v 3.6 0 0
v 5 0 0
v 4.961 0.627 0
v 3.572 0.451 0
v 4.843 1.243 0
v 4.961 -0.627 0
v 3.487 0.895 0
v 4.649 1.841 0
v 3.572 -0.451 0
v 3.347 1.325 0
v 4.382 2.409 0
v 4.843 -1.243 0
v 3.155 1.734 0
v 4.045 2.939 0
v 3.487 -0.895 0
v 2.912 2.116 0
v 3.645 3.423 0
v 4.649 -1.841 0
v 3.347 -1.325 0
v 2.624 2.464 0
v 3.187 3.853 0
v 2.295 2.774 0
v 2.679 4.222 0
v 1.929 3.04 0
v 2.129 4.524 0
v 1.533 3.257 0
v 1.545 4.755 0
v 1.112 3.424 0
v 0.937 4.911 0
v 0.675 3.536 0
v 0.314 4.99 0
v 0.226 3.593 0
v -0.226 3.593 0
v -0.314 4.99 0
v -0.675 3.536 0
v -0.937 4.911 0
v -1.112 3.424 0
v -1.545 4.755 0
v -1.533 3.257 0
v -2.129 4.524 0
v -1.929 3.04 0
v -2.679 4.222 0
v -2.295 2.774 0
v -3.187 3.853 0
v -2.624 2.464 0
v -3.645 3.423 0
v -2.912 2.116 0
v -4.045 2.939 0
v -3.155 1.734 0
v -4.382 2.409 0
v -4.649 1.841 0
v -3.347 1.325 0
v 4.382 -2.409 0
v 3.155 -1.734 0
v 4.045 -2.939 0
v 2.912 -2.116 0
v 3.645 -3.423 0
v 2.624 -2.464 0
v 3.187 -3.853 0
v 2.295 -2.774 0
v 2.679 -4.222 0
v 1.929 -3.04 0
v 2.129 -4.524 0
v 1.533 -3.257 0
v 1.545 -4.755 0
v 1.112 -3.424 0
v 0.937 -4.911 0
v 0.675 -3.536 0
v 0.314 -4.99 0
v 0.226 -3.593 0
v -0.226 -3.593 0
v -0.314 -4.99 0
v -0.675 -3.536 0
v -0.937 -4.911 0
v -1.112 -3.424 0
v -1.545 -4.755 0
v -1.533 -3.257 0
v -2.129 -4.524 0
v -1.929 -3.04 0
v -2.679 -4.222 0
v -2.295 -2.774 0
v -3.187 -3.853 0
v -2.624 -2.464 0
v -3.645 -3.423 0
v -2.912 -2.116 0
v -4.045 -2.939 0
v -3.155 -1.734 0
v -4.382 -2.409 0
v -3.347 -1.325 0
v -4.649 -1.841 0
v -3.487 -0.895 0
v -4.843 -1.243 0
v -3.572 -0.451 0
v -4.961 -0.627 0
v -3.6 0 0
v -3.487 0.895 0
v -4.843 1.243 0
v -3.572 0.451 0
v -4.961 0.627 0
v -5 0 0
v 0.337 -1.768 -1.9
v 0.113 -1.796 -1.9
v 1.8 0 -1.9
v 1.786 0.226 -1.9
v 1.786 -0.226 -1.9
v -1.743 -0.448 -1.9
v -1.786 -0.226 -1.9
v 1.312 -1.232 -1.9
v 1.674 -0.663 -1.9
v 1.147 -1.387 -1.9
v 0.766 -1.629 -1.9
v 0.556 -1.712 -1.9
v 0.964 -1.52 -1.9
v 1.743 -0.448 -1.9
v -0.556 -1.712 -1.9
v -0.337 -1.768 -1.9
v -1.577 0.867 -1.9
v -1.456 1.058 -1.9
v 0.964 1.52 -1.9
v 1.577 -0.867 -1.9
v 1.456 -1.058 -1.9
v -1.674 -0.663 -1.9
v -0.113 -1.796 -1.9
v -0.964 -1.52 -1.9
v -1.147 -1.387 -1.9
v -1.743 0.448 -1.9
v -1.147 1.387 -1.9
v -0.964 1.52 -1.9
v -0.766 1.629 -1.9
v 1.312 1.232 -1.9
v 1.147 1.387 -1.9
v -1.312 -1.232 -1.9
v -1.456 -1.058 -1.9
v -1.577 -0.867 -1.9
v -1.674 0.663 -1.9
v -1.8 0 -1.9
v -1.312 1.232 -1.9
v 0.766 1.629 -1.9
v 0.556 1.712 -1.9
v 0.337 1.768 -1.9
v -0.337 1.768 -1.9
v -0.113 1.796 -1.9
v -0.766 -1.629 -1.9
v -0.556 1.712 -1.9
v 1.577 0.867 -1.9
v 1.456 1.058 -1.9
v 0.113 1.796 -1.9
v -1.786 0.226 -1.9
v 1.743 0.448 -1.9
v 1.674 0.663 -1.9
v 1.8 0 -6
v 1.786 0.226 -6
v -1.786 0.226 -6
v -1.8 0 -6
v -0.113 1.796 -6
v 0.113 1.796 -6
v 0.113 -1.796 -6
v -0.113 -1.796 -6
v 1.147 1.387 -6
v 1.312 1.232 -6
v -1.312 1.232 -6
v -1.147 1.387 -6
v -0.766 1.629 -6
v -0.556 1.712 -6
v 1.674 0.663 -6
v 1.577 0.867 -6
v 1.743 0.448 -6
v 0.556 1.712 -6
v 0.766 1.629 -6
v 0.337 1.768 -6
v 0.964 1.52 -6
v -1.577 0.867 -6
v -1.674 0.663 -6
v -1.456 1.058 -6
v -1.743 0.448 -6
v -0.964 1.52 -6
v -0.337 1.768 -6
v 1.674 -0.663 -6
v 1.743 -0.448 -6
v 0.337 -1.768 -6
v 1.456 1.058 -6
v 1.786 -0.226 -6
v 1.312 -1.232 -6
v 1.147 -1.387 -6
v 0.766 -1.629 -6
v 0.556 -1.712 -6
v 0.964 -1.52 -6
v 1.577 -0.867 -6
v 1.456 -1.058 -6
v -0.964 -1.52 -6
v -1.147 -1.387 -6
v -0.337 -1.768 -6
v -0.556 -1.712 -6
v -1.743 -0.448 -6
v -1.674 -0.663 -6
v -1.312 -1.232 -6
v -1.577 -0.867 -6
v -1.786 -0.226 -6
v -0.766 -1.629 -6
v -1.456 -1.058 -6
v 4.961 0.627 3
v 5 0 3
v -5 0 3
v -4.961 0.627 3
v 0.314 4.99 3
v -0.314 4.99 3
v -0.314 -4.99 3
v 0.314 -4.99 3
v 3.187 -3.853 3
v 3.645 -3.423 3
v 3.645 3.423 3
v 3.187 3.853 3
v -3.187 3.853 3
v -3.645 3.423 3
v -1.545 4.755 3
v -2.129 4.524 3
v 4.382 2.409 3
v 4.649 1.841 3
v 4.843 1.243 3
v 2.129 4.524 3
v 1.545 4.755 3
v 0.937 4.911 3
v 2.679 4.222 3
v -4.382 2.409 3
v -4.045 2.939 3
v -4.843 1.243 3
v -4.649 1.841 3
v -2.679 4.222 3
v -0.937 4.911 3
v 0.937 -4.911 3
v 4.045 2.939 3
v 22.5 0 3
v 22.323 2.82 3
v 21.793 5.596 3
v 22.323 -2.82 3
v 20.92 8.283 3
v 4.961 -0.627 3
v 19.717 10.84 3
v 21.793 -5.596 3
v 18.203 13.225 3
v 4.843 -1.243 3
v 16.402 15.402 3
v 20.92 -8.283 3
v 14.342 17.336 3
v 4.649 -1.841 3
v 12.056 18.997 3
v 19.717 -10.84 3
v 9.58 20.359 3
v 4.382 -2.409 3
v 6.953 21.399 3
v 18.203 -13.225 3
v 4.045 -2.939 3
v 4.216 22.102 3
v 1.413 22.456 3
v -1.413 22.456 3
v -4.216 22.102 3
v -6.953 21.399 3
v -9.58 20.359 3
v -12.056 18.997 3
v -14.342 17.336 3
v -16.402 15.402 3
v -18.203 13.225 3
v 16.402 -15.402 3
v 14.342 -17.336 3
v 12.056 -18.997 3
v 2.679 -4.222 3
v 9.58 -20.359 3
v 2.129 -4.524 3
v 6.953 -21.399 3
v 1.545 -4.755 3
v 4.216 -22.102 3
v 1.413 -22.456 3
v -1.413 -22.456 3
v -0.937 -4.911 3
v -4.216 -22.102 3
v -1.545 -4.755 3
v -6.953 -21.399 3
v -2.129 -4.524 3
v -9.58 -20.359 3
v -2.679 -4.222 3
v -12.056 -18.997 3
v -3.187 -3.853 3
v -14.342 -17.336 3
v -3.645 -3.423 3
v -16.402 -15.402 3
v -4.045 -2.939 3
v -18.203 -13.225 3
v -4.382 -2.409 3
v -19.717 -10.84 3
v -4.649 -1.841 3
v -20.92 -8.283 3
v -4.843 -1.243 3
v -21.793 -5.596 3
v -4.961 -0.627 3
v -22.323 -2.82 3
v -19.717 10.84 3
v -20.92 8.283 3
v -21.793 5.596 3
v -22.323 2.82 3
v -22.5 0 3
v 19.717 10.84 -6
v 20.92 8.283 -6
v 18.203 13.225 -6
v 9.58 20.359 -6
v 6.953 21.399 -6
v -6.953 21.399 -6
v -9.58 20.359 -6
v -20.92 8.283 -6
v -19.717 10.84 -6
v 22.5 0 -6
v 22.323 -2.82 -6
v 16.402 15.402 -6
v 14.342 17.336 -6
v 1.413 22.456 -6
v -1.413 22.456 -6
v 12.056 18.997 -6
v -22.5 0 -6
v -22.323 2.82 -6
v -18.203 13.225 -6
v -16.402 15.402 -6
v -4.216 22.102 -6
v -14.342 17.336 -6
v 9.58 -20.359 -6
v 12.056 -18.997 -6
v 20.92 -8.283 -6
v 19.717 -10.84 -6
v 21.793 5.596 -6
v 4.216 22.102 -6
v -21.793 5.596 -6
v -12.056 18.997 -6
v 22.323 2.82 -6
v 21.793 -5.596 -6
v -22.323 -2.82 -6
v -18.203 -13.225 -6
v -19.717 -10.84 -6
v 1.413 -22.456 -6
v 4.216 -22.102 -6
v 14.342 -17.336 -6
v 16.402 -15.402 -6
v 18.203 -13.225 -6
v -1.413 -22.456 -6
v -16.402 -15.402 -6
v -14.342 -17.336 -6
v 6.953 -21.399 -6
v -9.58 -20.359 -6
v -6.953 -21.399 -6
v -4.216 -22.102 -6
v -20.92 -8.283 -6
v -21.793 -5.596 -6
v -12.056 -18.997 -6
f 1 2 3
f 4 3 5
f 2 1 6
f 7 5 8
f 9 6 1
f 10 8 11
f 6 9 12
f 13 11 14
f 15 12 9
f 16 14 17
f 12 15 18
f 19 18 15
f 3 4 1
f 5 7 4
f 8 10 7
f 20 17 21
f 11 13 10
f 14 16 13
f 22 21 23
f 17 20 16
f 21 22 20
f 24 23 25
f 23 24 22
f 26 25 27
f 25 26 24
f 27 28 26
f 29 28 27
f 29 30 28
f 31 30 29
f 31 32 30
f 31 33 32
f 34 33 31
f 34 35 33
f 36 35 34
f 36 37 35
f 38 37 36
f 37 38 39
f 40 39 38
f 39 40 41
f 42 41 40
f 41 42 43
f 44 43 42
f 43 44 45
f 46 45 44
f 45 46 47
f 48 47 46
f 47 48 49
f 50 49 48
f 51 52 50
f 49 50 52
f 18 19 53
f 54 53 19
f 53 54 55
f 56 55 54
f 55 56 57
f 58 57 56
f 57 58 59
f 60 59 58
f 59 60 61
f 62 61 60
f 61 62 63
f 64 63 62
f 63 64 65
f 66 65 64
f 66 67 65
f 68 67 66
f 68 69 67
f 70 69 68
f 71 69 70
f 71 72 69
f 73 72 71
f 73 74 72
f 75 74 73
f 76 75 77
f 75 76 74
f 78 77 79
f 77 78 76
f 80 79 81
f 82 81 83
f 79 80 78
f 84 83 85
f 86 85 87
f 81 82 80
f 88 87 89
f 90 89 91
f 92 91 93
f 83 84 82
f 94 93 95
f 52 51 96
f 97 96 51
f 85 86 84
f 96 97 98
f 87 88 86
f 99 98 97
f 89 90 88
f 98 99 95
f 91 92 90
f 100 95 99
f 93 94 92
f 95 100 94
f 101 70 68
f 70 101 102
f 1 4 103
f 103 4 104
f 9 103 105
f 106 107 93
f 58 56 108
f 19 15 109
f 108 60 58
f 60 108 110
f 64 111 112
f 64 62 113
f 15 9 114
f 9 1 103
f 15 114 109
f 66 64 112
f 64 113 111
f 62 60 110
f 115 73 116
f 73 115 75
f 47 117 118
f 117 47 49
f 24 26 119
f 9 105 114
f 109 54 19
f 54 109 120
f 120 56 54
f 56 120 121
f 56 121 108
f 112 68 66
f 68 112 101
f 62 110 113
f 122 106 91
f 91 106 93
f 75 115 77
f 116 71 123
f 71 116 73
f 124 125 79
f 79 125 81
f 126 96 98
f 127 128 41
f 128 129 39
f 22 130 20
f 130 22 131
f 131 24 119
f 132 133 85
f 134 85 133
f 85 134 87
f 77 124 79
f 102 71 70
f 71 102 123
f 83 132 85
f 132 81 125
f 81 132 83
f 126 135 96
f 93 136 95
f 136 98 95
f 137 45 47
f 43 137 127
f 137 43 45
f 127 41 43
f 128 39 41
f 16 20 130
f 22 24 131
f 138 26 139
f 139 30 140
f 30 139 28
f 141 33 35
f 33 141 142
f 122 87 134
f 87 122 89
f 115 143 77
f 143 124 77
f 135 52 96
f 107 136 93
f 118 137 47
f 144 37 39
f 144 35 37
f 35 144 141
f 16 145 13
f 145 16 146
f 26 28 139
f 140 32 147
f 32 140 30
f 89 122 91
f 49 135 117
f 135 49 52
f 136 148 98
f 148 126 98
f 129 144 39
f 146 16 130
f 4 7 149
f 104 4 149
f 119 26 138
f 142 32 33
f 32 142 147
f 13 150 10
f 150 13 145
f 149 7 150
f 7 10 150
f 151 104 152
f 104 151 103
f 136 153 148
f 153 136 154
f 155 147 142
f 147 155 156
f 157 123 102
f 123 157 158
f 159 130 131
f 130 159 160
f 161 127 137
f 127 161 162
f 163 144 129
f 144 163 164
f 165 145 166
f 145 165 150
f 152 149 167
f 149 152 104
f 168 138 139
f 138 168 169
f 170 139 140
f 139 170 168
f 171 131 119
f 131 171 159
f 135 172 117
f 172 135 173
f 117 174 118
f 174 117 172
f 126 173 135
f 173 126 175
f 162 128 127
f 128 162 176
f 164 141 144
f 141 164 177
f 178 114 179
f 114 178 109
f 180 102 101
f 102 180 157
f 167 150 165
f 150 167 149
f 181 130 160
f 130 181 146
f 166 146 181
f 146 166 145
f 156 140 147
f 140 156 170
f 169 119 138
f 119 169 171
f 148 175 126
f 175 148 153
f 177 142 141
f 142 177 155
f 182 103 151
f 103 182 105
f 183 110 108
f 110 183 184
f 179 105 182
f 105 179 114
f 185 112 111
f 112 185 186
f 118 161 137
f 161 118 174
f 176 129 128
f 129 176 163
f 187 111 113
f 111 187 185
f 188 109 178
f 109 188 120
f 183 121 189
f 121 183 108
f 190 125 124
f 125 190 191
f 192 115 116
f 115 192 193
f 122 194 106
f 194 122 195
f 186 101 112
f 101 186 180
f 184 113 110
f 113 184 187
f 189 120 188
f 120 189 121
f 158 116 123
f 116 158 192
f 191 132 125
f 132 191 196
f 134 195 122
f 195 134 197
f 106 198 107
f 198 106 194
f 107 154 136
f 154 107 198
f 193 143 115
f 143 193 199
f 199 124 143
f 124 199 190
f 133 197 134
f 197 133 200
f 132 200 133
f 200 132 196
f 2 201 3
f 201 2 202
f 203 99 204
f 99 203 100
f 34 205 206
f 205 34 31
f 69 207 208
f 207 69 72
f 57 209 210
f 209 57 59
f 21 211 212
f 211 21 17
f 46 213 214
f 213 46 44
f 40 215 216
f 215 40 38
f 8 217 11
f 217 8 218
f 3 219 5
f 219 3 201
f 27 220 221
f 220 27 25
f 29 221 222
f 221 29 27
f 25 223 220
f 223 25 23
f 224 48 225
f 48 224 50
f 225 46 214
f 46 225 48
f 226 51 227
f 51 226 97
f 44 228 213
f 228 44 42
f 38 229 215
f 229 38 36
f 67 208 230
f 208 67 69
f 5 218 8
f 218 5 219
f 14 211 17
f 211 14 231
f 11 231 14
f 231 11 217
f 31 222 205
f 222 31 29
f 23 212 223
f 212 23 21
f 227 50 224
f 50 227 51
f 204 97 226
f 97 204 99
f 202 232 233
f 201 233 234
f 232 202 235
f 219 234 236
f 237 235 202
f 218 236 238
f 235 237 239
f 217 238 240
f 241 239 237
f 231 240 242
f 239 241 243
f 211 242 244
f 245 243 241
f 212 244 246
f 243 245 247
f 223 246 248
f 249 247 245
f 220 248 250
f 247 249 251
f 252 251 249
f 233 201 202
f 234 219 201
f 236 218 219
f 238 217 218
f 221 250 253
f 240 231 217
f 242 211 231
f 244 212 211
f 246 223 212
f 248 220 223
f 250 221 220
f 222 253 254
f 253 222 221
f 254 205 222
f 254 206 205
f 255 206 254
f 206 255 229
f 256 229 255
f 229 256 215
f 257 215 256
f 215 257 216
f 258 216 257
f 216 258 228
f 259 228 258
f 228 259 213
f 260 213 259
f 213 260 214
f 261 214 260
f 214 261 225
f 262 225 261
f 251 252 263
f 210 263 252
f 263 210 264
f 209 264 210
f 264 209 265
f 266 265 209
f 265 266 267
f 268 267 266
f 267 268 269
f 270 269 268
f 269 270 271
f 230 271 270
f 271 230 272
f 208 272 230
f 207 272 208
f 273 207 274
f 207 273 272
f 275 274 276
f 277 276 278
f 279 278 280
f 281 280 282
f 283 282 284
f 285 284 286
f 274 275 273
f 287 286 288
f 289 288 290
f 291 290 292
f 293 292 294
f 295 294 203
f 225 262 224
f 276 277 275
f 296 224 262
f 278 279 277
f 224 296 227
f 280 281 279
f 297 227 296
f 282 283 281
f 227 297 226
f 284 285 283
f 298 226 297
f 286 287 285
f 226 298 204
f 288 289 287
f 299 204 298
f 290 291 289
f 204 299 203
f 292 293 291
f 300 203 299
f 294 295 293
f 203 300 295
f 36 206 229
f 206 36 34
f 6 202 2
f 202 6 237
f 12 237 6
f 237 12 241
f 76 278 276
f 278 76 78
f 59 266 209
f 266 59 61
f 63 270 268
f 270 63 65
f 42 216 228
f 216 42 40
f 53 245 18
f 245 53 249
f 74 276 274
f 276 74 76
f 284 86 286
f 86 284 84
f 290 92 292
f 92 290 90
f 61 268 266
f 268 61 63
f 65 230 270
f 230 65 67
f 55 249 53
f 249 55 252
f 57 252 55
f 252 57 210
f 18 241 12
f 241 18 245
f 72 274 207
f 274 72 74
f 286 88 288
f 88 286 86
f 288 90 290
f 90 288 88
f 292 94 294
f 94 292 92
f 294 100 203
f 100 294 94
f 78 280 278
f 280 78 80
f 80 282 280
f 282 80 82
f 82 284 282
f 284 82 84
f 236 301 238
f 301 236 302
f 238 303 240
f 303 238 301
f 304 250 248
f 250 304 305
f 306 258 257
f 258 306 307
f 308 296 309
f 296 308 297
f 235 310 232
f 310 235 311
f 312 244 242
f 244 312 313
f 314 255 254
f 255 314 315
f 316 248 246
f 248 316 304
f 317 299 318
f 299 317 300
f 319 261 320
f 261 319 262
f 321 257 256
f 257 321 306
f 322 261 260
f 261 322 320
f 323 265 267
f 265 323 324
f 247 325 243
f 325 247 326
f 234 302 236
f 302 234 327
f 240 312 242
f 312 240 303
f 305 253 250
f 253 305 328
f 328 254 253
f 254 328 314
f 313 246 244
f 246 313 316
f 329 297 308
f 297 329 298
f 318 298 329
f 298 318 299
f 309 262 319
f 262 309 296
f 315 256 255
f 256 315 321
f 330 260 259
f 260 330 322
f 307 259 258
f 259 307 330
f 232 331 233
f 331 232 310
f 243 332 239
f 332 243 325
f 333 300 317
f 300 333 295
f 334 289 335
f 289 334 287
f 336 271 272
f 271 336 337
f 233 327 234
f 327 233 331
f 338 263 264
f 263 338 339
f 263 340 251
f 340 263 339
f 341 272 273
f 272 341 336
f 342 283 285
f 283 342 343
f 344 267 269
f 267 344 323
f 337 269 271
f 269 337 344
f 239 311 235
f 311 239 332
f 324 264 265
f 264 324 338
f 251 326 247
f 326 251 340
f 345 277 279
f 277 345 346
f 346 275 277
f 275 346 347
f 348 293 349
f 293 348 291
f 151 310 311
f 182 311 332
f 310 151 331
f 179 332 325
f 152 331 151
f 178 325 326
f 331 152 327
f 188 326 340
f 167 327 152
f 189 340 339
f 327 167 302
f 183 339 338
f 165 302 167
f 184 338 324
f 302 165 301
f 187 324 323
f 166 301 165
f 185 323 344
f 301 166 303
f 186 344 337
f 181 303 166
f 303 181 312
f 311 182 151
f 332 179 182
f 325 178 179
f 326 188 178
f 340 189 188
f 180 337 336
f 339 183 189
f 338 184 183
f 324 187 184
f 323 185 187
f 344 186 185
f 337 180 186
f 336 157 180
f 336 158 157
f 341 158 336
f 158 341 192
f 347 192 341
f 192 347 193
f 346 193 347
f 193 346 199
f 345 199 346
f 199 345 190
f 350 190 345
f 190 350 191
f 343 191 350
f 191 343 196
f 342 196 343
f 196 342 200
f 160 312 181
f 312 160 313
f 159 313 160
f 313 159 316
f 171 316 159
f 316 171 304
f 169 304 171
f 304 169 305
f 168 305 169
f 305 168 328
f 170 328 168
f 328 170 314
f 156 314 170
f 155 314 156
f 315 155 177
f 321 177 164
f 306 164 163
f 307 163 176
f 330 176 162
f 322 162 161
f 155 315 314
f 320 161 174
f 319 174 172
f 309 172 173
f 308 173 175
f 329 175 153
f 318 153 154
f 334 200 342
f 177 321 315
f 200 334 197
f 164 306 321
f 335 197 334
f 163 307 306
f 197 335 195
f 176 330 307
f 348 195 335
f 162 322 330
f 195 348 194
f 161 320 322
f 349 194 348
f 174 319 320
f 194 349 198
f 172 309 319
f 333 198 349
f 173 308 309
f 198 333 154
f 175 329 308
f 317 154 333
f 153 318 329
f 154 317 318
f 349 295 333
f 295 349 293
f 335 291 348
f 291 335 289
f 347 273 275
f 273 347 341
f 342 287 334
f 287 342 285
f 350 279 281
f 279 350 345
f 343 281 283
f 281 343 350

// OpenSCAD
$fn = 50;

difference() {
	union() {
		translate(v = [0, 0, -6.0]) {
			cylinder(h = 9, r = 22.5);
		}
	}
	union() {
		translate(v = [0, 0, 0]) {
			rotate(a = [0, 0, 0]) {
				difference() {
					union() {
						translate(v = [0, 0, -9.0]) {
							cylinder(h = 9, r = 1.5);
						}
						translate(v = [0, 0, -1.9]) {
							cylinder(h = 1.9, r1 = 1.8, r2 = 3.6);
						}
						translate(v = [0, 0, -9.0]) {
							cylinder(h = 9, r = 1.8);
						}
						translate(v = [0, 0, -9.0]) {
							cylinder(h = 9, r = 1.5);
						}
					}
					union();
				}
			}
		}
		#cylinder(h = 3, r = 5.0);
	}
}
